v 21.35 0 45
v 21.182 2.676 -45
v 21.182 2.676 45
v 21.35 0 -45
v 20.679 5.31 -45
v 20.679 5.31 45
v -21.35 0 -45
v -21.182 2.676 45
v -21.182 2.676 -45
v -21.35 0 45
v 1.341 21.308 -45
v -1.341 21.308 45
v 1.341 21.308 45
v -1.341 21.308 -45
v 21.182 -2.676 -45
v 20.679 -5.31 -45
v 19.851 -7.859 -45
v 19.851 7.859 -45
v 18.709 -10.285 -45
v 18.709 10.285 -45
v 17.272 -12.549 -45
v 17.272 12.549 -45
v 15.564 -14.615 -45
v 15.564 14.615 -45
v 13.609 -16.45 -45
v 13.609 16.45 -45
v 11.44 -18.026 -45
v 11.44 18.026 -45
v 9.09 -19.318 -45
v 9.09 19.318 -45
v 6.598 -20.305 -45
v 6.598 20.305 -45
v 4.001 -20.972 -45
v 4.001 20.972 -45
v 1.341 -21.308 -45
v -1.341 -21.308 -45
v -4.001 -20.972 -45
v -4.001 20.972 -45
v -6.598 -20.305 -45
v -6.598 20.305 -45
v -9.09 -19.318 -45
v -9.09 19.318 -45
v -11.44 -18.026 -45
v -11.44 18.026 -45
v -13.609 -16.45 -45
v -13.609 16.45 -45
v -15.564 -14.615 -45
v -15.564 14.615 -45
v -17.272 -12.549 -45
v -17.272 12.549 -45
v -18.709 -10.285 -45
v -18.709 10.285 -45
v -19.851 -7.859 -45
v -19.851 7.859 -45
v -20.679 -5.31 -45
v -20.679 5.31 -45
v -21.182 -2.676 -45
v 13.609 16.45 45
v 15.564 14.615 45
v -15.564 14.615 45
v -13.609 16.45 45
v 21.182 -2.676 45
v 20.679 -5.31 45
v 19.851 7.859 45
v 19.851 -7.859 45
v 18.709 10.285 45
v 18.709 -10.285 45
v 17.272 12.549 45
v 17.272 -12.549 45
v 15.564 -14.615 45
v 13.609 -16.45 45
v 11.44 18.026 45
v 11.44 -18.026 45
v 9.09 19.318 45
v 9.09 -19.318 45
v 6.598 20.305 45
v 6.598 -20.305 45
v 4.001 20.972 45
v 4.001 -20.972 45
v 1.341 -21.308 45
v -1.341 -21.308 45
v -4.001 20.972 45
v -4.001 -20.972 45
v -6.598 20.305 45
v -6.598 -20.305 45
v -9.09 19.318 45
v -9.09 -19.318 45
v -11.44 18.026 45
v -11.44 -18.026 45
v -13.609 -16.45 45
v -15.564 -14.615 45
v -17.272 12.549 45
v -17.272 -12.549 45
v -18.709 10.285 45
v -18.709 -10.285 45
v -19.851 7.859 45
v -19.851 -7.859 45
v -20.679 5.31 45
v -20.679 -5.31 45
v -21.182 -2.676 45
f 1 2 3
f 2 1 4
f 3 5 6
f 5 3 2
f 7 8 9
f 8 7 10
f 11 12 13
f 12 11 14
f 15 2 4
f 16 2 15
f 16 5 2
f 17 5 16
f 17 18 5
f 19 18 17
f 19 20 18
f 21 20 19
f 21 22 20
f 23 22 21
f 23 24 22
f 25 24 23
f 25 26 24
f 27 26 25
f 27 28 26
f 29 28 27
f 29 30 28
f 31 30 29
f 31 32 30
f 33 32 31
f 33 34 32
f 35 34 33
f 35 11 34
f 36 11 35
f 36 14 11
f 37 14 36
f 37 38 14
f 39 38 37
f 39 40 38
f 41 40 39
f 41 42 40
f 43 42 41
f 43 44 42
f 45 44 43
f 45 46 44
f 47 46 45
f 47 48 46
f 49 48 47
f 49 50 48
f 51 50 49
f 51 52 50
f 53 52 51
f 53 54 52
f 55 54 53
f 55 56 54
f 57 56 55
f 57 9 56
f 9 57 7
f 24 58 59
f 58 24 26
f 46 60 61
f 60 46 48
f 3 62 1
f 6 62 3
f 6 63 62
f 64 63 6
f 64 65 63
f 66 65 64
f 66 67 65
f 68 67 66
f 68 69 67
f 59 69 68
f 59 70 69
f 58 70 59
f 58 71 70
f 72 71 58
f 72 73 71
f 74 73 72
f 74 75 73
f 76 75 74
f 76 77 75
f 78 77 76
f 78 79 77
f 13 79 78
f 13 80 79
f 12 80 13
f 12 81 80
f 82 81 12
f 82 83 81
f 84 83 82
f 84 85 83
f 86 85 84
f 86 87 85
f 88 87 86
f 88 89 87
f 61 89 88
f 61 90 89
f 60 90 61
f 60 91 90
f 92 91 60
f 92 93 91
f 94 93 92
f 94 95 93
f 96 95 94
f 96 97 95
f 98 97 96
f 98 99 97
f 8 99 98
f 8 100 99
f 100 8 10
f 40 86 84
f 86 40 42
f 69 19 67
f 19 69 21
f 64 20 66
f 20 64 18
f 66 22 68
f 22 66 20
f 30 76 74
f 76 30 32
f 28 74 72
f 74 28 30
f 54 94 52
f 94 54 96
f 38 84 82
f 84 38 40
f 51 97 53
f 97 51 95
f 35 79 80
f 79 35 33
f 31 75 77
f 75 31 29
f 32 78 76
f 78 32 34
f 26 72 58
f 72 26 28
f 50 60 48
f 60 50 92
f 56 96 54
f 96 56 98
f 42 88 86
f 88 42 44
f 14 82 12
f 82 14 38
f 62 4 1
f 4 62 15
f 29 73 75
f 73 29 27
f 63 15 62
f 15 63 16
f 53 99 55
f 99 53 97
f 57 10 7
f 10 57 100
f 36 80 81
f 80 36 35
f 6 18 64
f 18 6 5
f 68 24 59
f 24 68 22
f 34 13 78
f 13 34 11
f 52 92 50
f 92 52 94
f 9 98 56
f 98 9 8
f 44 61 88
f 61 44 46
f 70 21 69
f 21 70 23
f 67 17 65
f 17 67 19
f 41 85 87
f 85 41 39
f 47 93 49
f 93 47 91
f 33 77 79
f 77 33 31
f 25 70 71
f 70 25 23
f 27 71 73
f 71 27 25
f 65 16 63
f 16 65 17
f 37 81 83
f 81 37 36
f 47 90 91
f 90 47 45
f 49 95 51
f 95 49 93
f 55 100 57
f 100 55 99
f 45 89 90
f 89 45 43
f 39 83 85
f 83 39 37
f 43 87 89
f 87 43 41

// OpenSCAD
$fn = 50;


difference() {
	union() {
		translate(v = [0, 0, -45.0000000000]) {
			cylinder(h = 90, r = 21.3500000000);
		}
	}
	union() {
		translate(v = [0, 0, -100.0000000000]) {
			cylinder(h = 200, r = 0);
		}
	}
}
